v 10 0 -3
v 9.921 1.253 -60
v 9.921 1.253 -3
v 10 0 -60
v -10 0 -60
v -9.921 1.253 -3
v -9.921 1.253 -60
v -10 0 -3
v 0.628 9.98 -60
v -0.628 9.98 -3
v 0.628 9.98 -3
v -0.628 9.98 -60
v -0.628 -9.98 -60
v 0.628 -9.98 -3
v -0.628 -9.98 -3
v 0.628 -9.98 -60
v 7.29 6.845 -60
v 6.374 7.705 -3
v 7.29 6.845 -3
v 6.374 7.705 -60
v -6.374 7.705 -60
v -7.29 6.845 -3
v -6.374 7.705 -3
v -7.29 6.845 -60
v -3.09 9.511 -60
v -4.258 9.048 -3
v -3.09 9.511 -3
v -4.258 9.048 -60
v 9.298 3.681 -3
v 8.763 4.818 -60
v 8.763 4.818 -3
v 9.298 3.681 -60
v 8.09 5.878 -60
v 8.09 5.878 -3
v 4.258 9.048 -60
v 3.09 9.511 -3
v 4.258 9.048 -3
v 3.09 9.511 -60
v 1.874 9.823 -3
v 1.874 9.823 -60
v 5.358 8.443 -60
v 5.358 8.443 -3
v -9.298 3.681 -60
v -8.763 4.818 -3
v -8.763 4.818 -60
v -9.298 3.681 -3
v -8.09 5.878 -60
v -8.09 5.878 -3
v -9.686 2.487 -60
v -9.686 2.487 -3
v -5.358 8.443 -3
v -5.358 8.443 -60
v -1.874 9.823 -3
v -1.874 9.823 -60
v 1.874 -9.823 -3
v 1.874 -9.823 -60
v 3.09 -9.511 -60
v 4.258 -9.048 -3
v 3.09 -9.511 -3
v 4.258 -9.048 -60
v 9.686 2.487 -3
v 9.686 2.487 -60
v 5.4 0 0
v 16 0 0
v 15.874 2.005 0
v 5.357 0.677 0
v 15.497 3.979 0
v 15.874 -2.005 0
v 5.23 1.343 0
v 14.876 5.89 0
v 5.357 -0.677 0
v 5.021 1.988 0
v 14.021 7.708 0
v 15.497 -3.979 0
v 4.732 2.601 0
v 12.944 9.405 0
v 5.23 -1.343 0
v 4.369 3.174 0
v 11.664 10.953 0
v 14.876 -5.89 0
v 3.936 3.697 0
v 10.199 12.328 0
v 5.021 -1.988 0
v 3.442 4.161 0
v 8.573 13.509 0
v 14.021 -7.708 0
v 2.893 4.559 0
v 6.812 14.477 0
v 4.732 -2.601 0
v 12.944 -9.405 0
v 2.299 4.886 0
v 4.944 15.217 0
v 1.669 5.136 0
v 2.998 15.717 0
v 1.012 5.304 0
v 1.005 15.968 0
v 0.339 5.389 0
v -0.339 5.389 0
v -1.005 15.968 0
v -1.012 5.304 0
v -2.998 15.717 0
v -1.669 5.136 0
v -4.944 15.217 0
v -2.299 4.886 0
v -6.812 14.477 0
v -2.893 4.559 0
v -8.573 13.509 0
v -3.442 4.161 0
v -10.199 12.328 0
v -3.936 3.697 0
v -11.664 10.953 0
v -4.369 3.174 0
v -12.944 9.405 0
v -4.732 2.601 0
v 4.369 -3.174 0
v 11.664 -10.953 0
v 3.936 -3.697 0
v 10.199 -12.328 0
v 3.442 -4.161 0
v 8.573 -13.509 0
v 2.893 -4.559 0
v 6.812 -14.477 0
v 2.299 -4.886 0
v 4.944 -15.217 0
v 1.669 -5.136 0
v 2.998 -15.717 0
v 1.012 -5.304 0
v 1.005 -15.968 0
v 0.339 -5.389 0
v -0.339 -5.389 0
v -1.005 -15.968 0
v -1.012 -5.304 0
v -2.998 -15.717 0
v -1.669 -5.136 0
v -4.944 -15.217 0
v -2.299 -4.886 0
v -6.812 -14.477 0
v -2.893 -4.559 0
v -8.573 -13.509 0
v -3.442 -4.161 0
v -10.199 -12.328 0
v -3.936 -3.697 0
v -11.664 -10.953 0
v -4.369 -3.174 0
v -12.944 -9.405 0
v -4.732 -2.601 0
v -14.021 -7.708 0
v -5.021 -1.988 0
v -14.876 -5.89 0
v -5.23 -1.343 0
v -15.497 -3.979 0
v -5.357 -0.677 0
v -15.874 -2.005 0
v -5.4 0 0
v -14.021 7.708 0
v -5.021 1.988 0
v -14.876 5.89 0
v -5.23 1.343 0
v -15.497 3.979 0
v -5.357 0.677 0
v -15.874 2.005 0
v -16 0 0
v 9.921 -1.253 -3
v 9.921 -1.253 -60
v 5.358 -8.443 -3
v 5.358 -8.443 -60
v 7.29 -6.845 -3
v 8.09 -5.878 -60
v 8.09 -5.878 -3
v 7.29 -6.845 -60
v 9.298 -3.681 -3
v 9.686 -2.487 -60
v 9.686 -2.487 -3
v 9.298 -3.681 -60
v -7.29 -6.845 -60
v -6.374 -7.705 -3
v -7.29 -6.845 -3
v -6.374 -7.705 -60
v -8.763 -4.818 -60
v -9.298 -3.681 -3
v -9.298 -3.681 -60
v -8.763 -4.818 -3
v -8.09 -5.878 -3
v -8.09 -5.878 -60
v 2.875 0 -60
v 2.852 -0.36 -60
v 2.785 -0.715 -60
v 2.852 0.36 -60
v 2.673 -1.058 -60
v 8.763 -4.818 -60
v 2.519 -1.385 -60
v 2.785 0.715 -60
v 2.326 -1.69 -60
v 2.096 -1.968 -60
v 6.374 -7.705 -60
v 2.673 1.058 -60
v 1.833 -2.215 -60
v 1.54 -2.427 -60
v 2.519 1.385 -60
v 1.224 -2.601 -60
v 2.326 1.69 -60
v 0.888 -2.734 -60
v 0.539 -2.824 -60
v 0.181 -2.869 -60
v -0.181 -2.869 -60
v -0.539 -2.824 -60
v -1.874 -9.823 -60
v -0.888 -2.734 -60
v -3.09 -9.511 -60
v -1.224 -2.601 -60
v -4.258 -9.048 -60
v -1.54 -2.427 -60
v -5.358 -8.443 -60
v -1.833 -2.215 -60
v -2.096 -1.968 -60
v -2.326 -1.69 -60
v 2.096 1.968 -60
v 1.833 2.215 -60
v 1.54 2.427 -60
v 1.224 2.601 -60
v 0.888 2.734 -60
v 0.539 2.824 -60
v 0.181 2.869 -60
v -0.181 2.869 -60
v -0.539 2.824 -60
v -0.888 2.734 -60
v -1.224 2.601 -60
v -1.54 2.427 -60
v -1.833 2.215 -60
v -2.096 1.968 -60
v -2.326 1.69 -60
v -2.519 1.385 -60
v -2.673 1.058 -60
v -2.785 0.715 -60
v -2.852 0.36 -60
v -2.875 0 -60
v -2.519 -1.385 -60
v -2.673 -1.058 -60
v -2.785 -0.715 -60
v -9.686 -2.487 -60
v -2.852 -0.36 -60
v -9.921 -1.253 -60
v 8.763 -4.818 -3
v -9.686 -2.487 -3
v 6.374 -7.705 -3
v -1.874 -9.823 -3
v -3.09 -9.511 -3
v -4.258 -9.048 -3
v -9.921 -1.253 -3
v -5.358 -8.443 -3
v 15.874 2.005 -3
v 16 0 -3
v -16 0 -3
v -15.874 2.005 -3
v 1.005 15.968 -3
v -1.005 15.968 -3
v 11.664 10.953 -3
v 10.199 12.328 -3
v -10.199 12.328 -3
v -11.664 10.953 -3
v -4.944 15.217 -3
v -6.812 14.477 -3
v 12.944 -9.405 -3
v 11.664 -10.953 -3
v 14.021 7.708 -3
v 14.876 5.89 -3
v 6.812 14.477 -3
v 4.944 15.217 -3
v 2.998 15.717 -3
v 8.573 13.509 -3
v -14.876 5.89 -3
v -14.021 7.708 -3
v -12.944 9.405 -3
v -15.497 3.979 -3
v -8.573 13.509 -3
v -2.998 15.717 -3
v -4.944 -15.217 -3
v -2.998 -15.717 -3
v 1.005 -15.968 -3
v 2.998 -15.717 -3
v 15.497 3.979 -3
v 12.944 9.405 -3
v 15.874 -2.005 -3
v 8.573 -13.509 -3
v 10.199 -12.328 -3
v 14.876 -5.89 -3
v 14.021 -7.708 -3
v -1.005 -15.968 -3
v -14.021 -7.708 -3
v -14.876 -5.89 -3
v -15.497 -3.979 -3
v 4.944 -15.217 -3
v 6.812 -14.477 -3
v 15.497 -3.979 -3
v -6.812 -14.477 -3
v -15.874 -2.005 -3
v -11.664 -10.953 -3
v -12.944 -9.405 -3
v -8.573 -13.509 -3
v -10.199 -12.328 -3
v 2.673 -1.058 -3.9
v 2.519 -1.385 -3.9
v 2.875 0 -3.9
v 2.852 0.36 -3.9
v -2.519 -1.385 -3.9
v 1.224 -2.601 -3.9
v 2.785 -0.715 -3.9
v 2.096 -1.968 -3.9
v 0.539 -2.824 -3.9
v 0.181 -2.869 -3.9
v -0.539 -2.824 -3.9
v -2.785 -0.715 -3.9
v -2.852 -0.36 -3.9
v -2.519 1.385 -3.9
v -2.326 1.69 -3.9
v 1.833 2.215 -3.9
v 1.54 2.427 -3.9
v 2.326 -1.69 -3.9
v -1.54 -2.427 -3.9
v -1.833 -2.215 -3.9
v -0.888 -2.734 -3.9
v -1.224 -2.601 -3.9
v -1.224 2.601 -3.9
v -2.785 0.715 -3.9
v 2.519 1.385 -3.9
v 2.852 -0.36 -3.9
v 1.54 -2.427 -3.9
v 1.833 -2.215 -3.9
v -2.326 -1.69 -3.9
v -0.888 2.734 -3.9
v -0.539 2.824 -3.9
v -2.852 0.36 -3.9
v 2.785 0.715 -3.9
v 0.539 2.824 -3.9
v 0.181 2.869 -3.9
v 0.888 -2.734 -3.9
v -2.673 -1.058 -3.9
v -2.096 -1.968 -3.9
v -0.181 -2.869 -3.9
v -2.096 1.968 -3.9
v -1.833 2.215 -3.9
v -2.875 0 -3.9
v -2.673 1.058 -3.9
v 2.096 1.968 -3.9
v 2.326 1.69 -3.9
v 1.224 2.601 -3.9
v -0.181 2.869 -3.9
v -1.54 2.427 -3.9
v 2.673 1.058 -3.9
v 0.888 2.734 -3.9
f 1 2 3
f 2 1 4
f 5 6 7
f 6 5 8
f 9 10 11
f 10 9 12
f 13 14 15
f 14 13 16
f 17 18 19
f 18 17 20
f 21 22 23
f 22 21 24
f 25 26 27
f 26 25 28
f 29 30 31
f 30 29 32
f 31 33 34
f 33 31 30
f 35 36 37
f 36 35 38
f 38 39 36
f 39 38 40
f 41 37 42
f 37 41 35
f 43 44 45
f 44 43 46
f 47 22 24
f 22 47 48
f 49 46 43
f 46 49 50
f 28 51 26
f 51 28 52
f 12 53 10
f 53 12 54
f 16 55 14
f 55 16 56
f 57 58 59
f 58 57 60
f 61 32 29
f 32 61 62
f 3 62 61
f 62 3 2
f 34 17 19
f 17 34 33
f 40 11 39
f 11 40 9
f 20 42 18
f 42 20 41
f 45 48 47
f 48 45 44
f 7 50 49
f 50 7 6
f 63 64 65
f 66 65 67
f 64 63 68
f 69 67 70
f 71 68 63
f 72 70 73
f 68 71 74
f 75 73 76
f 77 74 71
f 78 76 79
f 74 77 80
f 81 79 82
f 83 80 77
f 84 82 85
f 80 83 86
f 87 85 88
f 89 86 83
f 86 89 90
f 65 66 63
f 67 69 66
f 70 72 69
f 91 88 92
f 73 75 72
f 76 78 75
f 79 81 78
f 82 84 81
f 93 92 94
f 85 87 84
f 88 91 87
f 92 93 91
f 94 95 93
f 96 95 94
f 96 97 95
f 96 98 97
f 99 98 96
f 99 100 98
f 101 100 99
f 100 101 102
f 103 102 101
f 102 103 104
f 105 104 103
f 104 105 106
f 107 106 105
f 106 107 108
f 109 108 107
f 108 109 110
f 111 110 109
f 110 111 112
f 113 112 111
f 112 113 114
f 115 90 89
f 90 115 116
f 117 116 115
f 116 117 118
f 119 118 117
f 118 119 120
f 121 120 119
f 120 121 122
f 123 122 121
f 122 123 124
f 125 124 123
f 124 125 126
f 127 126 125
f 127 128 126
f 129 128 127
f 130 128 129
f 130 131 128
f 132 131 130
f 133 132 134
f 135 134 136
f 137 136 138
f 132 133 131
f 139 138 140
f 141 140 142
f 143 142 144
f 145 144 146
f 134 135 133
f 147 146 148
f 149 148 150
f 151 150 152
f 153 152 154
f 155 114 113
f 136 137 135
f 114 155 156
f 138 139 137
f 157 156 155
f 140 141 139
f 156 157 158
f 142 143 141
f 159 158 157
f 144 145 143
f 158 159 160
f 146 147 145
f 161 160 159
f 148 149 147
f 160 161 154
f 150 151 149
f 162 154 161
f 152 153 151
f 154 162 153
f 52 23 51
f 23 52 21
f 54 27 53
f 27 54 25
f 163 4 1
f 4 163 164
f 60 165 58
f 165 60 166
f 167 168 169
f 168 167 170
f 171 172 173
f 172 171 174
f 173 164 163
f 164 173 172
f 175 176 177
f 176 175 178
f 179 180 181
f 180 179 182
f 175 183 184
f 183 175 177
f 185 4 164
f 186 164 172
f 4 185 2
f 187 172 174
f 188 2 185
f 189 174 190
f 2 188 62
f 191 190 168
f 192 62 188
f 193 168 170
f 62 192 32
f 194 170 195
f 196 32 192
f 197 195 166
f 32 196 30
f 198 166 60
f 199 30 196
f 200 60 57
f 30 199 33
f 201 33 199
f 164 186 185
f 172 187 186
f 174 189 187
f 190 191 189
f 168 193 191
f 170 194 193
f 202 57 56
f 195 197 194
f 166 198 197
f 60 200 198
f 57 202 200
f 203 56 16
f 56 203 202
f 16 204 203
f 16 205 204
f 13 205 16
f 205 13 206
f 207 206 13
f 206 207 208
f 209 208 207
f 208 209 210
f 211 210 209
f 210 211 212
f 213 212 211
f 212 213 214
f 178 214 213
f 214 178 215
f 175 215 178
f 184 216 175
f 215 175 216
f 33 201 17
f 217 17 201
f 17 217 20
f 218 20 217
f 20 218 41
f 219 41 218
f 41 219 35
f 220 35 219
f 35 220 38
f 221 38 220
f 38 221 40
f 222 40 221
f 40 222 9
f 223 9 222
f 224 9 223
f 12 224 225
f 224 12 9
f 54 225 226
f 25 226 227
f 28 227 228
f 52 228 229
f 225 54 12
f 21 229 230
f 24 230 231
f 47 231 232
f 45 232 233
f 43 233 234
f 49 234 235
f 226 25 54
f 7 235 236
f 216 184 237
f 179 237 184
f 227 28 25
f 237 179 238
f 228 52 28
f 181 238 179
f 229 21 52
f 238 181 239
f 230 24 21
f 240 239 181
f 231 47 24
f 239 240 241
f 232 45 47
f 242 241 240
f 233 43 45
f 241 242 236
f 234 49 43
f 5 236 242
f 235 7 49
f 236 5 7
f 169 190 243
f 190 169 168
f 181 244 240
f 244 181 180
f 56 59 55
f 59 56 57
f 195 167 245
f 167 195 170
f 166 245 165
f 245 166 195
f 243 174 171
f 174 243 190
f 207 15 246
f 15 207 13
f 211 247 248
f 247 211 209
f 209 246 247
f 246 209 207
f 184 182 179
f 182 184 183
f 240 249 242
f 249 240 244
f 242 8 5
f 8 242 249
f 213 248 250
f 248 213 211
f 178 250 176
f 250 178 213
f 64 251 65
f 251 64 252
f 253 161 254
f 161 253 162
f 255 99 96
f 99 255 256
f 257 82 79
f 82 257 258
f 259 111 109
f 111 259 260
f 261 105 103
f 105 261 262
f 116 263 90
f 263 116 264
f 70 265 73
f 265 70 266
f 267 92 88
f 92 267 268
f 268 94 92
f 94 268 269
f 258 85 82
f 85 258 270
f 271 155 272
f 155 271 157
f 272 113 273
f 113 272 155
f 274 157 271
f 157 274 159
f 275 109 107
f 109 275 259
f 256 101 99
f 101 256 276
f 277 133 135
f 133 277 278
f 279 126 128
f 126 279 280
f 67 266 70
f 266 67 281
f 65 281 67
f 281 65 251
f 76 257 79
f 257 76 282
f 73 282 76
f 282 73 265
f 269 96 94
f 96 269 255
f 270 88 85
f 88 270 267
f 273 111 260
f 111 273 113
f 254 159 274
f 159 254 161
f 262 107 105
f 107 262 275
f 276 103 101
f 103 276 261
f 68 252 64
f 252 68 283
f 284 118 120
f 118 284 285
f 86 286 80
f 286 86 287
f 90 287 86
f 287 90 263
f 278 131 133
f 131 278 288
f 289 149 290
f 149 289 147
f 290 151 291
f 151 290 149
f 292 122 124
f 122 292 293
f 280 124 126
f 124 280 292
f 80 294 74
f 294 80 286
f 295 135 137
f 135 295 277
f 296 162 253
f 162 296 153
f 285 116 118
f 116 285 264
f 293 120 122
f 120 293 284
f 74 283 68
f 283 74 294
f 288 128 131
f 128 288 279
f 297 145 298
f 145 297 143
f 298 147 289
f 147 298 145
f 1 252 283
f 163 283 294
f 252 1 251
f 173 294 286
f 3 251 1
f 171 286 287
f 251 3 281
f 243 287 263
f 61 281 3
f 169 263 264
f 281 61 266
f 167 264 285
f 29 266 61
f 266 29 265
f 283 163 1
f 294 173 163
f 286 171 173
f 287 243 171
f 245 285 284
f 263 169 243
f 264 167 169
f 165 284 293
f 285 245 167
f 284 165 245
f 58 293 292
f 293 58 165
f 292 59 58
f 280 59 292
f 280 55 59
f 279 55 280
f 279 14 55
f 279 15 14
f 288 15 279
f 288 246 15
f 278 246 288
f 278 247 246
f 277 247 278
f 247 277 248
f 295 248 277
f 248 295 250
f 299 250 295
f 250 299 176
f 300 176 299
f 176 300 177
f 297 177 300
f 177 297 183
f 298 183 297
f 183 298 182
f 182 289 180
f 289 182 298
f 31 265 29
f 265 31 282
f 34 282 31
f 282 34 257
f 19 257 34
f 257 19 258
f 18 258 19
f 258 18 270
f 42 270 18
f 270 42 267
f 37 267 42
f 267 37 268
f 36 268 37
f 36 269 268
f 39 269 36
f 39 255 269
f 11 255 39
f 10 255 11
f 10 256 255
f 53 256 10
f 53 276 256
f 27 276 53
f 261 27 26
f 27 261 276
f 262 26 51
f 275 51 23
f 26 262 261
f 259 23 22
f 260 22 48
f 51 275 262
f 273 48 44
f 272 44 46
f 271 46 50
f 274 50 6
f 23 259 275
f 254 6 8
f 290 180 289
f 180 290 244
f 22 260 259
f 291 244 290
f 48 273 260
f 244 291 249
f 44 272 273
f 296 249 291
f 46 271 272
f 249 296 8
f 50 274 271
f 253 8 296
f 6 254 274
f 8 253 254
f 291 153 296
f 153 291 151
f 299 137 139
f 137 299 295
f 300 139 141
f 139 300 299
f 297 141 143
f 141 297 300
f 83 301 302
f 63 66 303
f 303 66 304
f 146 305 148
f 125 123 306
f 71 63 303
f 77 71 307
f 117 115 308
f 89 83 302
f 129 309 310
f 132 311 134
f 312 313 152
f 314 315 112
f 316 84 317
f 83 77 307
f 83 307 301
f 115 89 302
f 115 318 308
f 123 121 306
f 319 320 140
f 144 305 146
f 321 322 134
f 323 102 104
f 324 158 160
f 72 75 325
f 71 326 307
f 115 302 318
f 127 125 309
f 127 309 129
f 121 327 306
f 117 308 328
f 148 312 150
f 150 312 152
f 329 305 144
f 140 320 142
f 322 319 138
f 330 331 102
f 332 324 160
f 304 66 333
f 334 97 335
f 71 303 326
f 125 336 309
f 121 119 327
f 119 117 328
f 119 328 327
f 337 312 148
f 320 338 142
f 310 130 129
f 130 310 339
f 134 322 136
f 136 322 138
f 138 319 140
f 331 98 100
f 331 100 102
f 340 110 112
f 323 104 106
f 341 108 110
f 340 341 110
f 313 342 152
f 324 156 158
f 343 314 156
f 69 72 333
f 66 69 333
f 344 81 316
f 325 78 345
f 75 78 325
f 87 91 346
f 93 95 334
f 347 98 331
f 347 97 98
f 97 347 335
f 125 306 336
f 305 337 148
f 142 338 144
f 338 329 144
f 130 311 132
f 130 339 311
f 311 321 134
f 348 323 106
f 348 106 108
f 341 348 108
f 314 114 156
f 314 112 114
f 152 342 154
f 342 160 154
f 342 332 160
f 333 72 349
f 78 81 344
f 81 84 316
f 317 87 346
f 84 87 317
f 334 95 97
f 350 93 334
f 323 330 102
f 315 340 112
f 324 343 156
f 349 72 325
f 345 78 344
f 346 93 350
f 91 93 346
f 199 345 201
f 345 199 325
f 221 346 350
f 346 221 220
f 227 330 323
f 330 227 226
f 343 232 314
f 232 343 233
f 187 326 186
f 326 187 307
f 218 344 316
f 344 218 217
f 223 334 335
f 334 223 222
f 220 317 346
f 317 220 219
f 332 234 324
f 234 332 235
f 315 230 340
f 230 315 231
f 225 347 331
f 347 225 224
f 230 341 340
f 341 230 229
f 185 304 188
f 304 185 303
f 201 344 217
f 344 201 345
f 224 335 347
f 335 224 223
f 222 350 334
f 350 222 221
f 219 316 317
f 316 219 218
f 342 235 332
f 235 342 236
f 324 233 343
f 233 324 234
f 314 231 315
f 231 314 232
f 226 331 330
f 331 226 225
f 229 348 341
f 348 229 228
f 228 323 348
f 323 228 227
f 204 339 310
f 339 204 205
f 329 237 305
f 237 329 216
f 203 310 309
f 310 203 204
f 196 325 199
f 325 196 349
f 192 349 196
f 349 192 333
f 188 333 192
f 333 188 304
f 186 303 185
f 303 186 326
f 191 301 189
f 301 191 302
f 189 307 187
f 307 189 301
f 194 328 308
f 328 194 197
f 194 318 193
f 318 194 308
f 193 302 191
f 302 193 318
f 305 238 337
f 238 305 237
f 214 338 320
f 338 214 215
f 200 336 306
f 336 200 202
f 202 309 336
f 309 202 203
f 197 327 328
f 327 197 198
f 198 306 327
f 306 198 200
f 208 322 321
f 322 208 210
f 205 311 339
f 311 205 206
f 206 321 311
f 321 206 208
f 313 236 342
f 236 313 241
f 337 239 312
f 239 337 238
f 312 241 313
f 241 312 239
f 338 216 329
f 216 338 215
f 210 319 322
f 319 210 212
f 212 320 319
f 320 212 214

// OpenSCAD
$fn = 50;


difference() {
	union() {
		translate(v = [0, 0, -60.0000000000]) {
			cylinder(h = 60, r = 10.0000000000);
		}
		translate(v = [0, 0, -3.0000000000]) {
			cylinder(h = 3, r = 16.0000000000);
		}
	}
	union() {
		translate(v = [0, 0, 0]) {
			rotate(a = [0, 0, 0]) {
				difference() {
					union() {
						#translate(v = [0, 0, -60.0000000000]) {
							cylinder(h = 60, r = 2.6000000000);
						}
						#translate(v = [0, 0, -3.9000000000]) {
							cylinder(h = 3.9000000000, r = 10.0000000000, r1 = 2.8750000000, r2 = 5.4000000000);
						}
						#translate(v = [0, 0, -60.0000000000]) {
							cylinder(h = 60, r = 2.8750000000);
						}
						#translate(v = [0, 0, -60.0000000000]) {
							cylinder(h = 60, r = 2.6000000000);
						}
					}
					union();
				}
			}
		}
	}
}
